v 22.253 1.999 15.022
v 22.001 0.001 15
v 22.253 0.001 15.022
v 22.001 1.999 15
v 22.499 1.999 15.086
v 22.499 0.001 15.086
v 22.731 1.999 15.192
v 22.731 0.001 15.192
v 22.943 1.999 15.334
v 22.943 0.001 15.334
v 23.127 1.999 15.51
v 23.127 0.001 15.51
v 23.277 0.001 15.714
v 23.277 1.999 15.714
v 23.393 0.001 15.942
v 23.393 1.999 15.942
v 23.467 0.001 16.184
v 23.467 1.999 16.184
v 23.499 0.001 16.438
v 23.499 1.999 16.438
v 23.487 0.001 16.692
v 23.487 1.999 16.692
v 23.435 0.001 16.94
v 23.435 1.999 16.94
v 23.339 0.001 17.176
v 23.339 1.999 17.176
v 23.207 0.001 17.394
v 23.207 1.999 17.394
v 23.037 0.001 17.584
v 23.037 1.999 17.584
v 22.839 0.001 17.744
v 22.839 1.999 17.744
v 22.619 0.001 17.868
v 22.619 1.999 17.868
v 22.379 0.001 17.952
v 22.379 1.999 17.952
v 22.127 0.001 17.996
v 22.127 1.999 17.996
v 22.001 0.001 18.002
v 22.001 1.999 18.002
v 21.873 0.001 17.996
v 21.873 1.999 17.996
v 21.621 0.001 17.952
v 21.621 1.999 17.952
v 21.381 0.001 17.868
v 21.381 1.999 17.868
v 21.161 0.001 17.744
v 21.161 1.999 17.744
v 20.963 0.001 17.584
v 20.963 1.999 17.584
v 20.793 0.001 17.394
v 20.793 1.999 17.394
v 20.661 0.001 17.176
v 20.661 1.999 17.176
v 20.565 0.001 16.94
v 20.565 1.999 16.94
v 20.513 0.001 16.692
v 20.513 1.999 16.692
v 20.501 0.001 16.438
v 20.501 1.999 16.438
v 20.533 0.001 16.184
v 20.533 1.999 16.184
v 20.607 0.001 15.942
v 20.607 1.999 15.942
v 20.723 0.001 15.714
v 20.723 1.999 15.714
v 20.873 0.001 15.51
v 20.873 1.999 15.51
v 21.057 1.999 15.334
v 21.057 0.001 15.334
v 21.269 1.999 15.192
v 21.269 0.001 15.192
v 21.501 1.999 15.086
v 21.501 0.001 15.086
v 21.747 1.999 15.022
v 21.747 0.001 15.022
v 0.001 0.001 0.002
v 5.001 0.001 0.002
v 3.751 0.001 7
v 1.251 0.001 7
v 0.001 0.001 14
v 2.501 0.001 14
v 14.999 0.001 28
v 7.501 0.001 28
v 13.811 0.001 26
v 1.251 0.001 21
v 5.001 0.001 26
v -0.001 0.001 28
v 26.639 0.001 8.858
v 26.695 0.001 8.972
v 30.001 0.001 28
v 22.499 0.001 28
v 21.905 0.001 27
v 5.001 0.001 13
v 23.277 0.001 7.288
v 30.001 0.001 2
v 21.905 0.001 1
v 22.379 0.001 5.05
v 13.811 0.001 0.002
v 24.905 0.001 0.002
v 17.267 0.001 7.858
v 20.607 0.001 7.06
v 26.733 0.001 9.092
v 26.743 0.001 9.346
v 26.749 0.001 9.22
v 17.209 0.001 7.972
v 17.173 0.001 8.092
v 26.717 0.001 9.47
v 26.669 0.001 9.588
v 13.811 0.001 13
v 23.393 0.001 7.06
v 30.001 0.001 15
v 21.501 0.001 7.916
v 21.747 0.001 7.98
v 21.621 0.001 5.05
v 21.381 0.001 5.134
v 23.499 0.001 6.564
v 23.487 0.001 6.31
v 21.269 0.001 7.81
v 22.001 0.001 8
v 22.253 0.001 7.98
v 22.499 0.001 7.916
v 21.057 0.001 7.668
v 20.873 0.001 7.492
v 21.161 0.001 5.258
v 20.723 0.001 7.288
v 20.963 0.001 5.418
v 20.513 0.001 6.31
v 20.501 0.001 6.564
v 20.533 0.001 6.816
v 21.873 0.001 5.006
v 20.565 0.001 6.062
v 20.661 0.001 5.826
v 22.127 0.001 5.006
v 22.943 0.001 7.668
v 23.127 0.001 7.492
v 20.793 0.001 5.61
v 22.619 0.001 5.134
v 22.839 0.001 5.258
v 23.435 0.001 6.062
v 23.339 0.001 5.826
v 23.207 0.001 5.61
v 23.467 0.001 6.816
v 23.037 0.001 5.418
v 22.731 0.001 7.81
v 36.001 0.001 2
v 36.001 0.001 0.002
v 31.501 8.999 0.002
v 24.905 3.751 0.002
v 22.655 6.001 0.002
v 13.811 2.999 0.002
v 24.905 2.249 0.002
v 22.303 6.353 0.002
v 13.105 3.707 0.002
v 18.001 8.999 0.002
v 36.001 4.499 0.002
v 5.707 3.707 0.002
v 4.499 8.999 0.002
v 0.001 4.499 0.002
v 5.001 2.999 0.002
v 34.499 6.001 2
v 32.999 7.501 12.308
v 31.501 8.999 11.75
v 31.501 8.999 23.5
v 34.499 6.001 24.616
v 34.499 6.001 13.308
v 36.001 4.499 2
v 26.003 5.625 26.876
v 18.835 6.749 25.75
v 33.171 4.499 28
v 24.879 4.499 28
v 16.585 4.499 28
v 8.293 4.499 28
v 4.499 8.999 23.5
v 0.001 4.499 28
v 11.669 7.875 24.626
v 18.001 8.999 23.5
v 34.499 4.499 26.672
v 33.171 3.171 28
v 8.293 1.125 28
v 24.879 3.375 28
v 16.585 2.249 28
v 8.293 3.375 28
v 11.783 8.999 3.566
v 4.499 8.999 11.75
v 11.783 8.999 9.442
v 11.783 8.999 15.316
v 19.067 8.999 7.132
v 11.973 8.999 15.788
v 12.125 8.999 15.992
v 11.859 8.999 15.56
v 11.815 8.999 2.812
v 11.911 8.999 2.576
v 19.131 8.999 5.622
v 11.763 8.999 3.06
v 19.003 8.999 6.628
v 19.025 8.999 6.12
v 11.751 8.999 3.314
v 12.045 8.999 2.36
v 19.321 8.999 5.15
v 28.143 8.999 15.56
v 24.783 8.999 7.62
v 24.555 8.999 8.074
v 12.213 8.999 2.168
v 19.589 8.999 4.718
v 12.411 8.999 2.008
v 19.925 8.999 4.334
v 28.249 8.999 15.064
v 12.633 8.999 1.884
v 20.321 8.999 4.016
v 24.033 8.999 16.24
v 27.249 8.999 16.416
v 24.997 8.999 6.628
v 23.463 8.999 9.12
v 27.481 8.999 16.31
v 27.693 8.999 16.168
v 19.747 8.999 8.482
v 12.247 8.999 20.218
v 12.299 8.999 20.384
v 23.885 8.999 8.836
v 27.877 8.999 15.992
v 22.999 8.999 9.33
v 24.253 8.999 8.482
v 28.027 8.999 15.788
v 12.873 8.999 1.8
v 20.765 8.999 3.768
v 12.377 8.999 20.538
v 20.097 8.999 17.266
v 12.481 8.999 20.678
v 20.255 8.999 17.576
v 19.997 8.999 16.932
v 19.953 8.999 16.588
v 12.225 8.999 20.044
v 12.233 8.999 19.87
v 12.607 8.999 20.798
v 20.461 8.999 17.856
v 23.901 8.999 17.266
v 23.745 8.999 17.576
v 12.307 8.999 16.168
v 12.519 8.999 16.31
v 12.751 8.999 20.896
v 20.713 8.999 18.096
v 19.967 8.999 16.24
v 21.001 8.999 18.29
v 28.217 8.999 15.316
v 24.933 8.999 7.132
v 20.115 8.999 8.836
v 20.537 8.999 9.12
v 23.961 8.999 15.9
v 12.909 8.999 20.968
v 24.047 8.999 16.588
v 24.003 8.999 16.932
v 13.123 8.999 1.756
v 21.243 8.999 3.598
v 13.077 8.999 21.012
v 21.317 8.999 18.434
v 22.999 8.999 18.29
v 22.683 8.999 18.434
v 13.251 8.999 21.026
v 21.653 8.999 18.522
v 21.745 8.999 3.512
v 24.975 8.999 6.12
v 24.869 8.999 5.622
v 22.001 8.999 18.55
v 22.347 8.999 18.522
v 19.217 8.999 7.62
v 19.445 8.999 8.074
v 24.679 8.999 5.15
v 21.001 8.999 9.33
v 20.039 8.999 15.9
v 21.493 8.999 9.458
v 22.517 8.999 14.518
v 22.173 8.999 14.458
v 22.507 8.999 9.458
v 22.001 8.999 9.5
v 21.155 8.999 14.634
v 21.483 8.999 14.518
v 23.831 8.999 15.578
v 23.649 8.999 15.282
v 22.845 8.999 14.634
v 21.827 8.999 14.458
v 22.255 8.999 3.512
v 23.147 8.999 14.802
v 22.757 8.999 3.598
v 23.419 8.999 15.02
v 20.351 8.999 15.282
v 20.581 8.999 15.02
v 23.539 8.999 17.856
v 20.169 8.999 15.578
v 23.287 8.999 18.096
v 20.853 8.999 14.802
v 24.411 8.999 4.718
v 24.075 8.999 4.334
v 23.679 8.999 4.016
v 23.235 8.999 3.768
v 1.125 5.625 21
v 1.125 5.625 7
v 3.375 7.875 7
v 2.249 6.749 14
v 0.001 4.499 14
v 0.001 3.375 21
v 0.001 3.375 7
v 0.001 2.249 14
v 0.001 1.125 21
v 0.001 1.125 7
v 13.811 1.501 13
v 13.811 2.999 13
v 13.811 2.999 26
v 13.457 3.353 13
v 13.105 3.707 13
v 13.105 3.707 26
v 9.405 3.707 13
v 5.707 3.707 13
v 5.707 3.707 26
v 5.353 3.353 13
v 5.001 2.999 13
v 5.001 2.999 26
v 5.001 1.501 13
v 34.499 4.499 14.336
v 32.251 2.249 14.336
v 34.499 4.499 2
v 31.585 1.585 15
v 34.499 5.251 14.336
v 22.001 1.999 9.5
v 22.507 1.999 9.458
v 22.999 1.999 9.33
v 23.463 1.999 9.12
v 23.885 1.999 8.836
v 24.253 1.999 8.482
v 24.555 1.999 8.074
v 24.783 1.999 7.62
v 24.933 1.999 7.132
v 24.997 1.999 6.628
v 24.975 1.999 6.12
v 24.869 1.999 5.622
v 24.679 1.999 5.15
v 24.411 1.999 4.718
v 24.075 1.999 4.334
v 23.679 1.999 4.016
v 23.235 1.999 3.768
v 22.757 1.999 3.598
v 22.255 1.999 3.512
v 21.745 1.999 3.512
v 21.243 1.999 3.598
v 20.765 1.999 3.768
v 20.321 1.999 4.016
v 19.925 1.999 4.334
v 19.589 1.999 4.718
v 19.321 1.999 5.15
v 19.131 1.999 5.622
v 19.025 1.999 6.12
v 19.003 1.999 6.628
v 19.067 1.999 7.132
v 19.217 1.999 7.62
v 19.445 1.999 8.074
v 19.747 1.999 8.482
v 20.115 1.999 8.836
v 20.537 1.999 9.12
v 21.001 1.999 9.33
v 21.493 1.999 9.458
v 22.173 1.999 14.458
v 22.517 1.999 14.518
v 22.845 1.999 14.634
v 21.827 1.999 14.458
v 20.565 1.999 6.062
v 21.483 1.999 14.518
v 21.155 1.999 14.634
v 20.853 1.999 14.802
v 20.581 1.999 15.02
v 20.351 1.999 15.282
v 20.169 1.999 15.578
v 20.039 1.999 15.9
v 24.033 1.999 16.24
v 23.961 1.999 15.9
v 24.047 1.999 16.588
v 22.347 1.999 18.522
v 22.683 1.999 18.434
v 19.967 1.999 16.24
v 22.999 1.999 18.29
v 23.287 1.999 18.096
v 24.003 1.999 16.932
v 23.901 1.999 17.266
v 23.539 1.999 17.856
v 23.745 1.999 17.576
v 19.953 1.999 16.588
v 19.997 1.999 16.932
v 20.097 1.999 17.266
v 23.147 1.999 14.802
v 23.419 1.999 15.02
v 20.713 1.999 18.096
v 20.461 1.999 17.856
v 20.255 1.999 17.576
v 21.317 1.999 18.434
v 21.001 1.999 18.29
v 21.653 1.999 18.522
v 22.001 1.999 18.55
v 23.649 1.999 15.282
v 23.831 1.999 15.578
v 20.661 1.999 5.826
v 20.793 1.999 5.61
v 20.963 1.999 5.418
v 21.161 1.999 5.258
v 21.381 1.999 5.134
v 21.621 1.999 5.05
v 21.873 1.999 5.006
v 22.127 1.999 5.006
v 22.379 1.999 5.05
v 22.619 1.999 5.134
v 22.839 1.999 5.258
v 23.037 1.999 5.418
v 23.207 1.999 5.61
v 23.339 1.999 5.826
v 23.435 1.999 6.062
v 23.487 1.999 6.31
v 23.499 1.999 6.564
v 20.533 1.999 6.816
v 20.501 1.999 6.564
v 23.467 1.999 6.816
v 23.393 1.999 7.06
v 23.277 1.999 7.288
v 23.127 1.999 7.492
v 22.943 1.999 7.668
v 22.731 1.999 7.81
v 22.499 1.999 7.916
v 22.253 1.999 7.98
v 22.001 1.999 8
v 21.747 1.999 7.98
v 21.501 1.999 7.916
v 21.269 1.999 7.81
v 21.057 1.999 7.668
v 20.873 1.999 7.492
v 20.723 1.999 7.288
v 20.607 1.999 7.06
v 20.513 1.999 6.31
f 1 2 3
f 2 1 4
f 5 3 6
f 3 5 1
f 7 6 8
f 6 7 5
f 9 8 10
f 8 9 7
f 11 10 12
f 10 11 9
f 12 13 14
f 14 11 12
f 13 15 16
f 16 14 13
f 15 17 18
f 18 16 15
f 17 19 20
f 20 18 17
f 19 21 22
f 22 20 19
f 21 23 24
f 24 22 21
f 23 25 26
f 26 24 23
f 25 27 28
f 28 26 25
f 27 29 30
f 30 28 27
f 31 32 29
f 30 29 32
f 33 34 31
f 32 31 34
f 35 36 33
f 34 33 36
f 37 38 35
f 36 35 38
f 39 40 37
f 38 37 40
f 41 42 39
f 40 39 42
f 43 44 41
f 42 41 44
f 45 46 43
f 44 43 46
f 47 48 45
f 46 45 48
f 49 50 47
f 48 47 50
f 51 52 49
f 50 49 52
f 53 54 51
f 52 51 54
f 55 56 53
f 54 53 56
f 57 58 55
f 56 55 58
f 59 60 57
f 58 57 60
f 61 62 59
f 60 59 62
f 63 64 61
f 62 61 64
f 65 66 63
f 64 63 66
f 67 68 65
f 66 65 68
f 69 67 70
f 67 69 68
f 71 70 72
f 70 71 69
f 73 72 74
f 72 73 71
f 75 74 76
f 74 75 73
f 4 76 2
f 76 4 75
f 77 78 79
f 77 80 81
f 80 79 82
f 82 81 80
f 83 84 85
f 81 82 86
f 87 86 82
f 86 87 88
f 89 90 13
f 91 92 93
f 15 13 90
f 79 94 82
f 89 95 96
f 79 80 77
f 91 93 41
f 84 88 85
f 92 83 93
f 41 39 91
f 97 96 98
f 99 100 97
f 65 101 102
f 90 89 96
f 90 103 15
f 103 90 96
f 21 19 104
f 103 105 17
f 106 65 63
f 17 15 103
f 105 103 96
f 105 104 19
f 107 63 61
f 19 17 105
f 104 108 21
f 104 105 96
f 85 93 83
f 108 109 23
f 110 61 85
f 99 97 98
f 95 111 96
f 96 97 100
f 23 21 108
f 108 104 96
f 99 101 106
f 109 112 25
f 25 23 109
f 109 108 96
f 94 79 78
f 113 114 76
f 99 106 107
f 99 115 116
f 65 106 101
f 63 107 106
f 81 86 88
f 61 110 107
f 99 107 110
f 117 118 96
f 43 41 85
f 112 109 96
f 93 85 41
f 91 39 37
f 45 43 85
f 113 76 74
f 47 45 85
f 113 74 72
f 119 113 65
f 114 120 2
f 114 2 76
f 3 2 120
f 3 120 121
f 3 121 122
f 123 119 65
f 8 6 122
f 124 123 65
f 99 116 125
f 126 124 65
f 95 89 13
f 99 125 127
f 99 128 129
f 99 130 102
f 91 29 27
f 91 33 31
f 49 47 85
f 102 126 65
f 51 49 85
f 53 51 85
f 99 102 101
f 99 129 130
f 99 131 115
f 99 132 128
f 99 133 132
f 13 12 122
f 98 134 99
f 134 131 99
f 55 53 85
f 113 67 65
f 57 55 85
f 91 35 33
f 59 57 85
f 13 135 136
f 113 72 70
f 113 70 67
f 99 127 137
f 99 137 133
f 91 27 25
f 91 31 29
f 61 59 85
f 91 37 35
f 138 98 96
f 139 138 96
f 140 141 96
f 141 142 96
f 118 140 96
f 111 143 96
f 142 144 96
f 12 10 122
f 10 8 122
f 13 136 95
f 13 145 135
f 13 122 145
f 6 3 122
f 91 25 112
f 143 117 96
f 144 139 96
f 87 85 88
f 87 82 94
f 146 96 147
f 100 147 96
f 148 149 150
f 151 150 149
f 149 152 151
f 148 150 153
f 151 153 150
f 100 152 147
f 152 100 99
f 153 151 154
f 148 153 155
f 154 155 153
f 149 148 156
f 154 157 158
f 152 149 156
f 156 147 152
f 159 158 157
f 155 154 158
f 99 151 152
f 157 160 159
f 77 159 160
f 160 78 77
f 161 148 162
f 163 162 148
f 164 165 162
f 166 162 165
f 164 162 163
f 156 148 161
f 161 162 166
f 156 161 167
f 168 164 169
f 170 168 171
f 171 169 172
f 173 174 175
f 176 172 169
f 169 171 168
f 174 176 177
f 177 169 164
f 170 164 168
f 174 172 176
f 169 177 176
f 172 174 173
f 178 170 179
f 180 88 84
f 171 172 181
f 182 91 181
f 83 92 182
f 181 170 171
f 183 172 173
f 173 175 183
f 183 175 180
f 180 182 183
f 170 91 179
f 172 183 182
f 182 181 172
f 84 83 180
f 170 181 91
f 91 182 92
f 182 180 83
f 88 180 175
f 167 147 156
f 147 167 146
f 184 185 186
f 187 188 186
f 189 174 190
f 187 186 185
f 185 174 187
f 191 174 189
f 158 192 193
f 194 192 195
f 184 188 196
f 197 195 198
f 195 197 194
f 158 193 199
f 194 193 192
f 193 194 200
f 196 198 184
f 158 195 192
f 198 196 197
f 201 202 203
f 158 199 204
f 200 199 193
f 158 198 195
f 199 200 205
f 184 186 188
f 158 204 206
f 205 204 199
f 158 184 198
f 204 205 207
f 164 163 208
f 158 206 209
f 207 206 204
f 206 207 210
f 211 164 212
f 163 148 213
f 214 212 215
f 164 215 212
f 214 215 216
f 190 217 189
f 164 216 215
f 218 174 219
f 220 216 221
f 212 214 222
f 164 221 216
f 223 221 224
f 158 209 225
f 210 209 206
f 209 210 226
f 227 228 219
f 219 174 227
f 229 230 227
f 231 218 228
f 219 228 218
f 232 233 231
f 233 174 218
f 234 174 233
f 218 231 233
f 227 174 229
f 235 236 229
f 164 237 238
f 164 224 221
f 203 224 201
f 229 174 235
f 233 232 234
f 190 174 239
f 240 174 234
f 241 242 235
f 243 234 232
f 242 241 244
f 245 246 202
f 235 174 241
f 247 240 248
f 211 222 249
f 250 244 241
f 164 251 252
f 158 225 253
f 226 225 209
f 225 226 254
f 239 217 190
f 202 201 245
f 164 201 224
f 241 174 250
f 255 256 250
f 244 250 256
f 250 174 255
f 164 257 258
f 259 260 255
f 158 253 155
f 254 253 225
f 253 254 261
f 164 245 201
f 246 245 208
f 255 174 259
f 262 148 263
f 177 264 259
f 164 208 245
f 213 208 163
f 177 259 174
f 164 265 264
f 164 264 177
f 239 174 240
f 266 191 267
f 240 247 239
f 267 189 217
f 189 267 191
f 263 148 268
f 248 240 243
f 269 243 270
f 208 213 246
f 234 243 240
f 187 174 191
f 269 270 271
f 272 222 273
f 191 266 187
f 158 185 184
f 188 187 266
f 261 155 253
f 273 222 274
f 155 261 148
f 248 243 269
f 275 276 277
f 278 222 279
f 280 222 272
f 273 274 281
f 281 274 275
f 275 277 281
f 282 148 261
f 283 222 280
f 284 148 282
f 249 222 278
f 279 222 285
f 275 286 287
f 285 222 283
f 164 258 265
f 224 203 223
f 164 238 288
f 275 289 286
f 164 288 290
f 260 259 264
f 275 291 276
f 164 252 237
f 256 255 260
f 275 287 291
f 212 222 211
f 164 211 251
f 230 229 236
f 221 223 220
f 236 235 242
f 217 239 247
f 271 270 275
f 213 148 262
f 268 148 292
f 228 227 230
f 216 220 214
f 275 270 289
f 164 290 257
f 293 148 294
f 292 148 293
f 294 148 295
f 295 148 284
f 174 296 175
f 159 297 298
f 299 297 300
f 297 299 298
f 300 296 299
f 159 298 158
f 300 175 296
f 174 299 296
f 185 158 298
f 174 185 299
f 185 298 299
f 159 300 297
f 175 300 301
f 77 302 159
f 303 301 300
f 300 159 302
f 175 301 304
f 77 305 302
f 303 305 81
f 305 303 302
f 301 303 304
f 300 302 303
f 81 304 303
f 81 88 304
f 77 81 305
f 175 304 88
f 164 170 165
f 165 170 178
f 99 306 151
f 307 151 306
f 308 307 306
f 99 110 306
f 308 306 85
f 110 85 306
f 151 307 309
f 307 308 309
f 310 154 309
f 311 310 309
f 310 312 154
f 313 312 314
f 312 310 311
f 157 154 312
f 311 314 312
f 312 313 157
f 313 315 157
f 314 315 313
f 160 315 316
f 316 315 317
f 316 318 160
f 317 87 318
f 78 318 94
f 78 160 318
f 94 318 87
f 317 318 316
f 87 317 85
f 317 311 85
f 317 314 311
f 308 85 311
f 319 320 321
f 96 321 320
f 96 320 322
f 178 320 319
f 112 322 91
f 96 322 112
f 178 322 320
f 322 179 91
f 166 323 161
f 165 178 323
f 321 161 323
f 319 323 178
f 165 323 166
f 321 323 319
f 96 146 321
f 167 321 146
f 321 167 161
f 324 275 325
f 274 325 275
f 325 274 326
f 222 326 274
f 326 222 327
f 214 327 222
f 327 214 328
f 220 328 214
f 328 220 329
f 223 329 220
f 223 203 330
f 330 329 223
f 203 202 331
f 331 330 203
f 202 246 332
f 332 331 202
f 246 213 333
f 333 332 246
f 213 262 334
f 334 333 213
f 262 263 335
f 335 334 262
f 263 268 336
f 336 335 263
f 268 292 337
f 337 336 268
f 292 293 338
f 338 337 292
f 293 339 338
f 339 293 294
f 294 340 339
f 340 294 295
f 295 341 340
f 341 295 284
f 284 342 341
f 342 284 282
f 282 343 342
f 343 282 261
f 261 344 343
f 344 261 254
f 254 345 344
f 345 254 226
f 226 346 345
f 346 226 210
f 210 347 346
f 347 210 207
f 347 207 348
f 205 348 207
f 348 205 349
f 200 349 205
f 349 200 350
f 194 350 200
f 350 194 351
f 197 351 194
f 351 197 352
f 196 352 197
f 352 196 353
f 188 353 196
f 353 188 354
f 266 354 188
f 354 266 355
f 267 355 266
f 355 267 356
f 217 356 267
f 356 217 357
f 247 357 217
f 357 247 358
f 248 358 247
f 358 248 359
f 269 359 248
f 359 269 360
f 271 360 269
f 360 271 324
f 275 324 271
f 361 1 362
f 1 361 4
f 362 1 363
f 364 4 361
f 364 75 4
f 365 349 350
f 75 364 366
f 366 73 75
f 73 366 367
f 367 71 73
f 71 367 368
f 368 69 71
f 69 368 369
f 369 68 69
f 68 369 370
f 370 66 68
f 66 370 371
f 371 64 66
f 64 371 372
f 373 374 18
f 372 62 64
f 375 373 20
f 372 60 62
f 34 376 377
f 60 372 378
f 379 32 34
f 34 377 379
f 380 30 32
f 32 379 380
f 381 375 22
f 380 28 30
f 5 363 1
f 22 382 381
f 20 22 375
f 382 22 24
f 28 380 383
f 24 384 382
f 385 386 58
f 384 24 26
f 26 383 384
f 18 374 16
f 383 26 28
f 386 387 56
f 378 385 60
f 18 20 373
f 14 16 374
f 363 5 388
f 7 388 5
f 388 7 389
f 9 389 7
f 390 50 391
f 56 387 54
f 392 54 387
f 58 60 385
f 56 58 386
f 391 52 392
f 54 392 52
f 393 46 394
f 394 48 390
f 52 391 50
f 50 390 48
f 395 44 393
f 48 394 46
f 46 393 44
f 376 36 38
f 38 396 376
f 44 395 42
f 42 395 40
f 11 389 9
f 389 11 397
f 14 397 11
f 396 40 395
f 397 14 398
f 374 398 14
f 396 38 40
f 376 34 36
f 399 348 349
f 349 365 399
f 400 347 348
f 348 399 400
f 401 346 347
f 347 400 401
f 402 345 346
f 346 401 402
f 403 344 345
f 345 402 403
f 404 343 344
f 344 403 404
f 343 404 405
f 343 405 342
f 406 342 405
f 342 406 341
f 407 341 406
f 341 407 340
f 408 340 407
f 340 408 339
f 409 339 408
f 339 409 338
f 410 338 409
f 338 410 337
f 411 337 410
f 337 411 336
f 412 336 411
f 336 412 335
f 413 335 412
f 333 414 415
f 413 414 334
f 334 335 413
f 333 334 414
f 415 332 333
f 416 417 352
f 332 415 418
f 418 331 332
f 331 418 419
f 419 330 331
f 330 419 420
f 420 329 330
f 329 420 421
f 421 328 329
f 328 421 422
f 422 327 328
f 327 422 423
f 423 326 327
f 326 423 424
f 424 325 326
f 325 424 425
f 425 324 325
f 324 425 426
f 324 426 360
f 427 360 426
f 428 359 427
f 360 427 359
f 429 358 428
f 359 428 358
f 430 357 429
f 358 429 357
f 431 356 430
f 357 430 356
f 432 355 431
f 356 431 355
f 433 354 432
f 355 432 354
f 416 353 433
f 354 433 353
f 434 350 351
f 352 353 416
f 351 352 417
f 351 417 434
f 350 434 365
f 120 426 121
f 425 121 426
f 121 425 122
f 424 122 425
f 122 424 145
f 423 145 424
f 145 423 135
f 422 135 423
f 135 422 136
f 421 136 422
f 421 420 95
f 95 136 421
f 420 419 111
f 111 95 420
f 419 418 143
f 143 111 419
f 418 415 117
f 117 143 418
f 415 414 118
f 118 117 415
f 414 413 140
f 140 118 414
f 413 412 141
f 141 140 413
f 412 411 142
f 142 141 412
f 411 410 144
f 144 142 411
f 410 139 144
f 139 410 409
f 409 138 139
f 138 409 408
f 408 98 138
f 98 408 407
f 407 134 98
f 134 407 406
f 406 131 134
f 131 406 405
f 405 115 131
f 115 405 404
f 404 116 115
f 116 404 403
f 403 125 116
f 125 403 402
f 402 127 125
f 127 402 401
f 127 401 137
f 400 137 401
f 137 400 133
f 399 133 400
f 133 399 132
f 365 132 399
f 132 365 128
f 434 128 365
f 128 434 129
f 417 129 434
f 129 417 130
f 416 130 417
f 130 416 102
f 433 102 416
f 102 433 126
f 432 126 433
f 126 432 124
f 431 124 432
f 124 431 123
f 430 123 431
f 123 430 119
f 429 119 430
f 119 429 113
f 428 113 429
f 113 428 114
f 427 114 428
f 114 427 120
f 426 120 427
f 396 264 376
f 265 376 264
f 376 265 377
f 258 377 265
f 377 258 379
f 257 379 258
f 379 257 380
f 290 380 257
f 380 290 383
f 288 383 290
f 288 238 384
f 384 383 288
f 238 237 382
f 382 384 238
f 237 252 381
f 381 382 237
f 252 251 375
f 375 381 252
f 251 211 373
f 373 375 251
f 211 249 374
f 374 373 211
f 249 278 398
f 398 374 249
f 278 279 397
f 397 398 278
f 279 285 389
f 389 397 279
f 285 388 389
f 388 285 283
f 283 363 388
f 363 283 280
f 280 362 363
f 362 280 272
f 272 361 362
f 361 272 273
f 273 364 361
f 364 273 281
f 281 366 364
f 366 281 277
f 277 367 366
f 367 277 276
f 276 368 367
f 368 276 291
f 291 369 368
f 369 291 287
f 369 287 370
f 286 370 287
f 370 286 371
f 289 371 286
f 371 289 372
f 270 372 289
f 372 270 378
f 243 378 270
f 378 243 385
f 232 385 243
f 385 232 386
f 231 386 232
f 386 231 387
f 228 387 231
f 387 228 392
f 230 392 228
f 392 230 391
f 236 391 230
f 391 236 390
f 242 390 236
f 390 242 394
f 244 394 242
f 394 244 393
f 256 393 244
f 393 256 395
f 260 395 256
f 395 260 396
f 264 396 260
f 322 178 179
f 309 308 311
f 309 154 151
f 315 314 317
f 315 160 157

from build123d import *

# Parameters (mm, degrees)
SKETCH1_W               = 36
SKETCH1_H               = 9
BOSS_EXTRUDE1_DEPTH     = 28
CUT_EXTRUDE1_DEPTH      = 28
CUT_EXTRUDE2_DEPTH      = 36
SKETCH5_W               = 11.440376565
SKETCH5_H               = 15.618965423
CUT_EXTRUDE4_DEPTH      = 2
CUT_EXTRUDE5_DEPTH      = 2
CUT_EXTRUDE5_DEPTH_BACK = 2
CUT_EXTRUDE6_DEPTH      = 26
CUT_EXTRUDE7_DEPTH      = 26
SKETCH10_R              = 3
CUT_EXTRUDE8_DEPTH      = 7
SKETCH11_R              = 1.5
CUT_EXTRUDE9_DEPTH      = 2
SKETCH12_R              = 1.5
CUT_EXTRUDE10_DEPTH     = 9
SKETCH13_R              = 2.05
CUT_EXTRUDE11_DEPTH     = 7


with BuildPart() as part:
    # Sketch1 → Boss-Extrude1 (new body)
    with BuildSketch(Plane.XY):
        with Locations((18, 4.5)):
            Rectangle(SKETCH1_W, SKETCH1_H)
    extrude(amount=BOSS_EXTRUDE1_DEPTH)

    # Sketch2 → Cut-Extrude1 (cut)
    with BuildSketch(Plane.XY):
        Polygon((0, 4.5), (4.5, 9), (0, 9), align=None)
        Polygon((36, 4.5), (31.5, 9), (36, 9), align=None)
    extrude(amount=CUT_EXTRUDE1_DEPTH, mode=Mode.SUBTRACT)

    # Sketch3 → Cut-Extrude2 (cut)
    with BuildSketch(Plane(origin=(0, 0, 0), x_dir=(0, 0, -1), z_dir=(1, 0, 0))):
        Polygon((-28, 4.5), (-23.5, 9), (-28, 9), align=None)
    extrude(amount=CUT_EXTRUDE2_DEPTH, mode=Mode.SUBTRACT)

    # Sketch5 → Cut-Extrude4 (cut)
    with BuildSketch(Plane(origin=(32, 0, 32), x_dir=(0, 1, 0), z_dir=(0.707106781, 0, 0.707106781))):
        with Locations((5.720188283, -5.935696583)):
            Rectangle(SKETCH5_W, SKETCH5_H)
    extrude(amount=-CUT_EXTRUDE4_DEPTH, mode=Mode.SUBTRACT)

    # Sketch6 → Cut-Extrude5 (cut, two sides)
    with BuildSketch(Plane(origin=(4, 0, -4), x_dir=(0.577350269, -0.577350269, 0.577350269), z_dir=(-0.707106781, 0, 0.707106781))) as cut_extrude5_sk:
        Polygon((26.558112383, 29.802125204), (32.719347855, 28.647424665), (30.19862658, 32.212262879), align=None)
    extrude(amount=CUT_EXTRUDE5_DEPTH, mode=Mode.SUBTRACT)
    extrude(cut_extrude5_sk.sketch, amount=-CUT_EXTRUDE5_DEPTH_BACK, mode=Mode.SUBTRACT)

    # Sketch7 → Cut-Extrude6 (cut)
    with BuildSketch(Plane.XY):
        Polygon((5, 0), (5, 3), (5.707106781, 3.707106781), (13.104524105, 3.707106781), (13.811630886, 3), (13.811630886, 0), align=None)
    extrude(amount=CUT_EXTRUDE6_DEPTH, mode=Mode.SUBTRACT)

    # Sketch8 → Cut-Extrude7 (cut)
    with BuildSketch(Plane.XY.offset(28)):
        Polygon((36, 0), (30, 0), (34.5, 4.5), (34.5, 6), (36, 6), align=None)
    extrude(amount=-CUT_EXTRUDE7_DEPTH, mode=Mode.SUBTRACT)

    # Sketch10 → Cut-Extrude8 (cut)
    with BuildSketch(Plane(origin=(0, 9, 0), x_dir=(1, 0, 0), z_dir=(0, 1, 0))):
        with Locations((22, -6.5)):
            Circle(SKETCH10_R)
    extrude(amount=-CUT_EXTRUDE8_DEPTH, mode=Mode.SUBTRACT)

    # Sketch11 → Cut-Extrude9 (cut)
    with BuildSketch(Plane(origin=(0, 2, 0), x_dir=(1, 0, 0), z_dir=(0, 1, 0))):
        with Locations((22, -6.5)):
            Circle(SKETCH11_R)
    extrude(amount=-CUT_EXTRUDE9_DEPTH, mode=Mode.SUBTRACT)

    # Sketch12 → Cut-Extrude10 (cut)
    with BuildSketch(Plane(origin=(0, 0, 0), x_dir=(1, 0, 0), z_dir=(0, 1, 0))):
        with Locations((22, -16.5)):
            Circle(SKETCH12_R)
    extrude(amount=CUT_EXTRUDE10_DEPTH, mode=Mode.SUBTRACT)

    # Sketch13 → Cut-Extrude11 (cut)
    with BuildSketch(Plane(origin=(0, 9, 0), x_dir=(1, 0, 0), z_dir=(0, 1, 0))):
        with Locations((22, -16.5)):
            Circle(SKETCH13_R)
    extrude(amount=-CUT_EXTRUDE11_DEPTH, mode=Mode.SUBTRACT)


solid = part.part
